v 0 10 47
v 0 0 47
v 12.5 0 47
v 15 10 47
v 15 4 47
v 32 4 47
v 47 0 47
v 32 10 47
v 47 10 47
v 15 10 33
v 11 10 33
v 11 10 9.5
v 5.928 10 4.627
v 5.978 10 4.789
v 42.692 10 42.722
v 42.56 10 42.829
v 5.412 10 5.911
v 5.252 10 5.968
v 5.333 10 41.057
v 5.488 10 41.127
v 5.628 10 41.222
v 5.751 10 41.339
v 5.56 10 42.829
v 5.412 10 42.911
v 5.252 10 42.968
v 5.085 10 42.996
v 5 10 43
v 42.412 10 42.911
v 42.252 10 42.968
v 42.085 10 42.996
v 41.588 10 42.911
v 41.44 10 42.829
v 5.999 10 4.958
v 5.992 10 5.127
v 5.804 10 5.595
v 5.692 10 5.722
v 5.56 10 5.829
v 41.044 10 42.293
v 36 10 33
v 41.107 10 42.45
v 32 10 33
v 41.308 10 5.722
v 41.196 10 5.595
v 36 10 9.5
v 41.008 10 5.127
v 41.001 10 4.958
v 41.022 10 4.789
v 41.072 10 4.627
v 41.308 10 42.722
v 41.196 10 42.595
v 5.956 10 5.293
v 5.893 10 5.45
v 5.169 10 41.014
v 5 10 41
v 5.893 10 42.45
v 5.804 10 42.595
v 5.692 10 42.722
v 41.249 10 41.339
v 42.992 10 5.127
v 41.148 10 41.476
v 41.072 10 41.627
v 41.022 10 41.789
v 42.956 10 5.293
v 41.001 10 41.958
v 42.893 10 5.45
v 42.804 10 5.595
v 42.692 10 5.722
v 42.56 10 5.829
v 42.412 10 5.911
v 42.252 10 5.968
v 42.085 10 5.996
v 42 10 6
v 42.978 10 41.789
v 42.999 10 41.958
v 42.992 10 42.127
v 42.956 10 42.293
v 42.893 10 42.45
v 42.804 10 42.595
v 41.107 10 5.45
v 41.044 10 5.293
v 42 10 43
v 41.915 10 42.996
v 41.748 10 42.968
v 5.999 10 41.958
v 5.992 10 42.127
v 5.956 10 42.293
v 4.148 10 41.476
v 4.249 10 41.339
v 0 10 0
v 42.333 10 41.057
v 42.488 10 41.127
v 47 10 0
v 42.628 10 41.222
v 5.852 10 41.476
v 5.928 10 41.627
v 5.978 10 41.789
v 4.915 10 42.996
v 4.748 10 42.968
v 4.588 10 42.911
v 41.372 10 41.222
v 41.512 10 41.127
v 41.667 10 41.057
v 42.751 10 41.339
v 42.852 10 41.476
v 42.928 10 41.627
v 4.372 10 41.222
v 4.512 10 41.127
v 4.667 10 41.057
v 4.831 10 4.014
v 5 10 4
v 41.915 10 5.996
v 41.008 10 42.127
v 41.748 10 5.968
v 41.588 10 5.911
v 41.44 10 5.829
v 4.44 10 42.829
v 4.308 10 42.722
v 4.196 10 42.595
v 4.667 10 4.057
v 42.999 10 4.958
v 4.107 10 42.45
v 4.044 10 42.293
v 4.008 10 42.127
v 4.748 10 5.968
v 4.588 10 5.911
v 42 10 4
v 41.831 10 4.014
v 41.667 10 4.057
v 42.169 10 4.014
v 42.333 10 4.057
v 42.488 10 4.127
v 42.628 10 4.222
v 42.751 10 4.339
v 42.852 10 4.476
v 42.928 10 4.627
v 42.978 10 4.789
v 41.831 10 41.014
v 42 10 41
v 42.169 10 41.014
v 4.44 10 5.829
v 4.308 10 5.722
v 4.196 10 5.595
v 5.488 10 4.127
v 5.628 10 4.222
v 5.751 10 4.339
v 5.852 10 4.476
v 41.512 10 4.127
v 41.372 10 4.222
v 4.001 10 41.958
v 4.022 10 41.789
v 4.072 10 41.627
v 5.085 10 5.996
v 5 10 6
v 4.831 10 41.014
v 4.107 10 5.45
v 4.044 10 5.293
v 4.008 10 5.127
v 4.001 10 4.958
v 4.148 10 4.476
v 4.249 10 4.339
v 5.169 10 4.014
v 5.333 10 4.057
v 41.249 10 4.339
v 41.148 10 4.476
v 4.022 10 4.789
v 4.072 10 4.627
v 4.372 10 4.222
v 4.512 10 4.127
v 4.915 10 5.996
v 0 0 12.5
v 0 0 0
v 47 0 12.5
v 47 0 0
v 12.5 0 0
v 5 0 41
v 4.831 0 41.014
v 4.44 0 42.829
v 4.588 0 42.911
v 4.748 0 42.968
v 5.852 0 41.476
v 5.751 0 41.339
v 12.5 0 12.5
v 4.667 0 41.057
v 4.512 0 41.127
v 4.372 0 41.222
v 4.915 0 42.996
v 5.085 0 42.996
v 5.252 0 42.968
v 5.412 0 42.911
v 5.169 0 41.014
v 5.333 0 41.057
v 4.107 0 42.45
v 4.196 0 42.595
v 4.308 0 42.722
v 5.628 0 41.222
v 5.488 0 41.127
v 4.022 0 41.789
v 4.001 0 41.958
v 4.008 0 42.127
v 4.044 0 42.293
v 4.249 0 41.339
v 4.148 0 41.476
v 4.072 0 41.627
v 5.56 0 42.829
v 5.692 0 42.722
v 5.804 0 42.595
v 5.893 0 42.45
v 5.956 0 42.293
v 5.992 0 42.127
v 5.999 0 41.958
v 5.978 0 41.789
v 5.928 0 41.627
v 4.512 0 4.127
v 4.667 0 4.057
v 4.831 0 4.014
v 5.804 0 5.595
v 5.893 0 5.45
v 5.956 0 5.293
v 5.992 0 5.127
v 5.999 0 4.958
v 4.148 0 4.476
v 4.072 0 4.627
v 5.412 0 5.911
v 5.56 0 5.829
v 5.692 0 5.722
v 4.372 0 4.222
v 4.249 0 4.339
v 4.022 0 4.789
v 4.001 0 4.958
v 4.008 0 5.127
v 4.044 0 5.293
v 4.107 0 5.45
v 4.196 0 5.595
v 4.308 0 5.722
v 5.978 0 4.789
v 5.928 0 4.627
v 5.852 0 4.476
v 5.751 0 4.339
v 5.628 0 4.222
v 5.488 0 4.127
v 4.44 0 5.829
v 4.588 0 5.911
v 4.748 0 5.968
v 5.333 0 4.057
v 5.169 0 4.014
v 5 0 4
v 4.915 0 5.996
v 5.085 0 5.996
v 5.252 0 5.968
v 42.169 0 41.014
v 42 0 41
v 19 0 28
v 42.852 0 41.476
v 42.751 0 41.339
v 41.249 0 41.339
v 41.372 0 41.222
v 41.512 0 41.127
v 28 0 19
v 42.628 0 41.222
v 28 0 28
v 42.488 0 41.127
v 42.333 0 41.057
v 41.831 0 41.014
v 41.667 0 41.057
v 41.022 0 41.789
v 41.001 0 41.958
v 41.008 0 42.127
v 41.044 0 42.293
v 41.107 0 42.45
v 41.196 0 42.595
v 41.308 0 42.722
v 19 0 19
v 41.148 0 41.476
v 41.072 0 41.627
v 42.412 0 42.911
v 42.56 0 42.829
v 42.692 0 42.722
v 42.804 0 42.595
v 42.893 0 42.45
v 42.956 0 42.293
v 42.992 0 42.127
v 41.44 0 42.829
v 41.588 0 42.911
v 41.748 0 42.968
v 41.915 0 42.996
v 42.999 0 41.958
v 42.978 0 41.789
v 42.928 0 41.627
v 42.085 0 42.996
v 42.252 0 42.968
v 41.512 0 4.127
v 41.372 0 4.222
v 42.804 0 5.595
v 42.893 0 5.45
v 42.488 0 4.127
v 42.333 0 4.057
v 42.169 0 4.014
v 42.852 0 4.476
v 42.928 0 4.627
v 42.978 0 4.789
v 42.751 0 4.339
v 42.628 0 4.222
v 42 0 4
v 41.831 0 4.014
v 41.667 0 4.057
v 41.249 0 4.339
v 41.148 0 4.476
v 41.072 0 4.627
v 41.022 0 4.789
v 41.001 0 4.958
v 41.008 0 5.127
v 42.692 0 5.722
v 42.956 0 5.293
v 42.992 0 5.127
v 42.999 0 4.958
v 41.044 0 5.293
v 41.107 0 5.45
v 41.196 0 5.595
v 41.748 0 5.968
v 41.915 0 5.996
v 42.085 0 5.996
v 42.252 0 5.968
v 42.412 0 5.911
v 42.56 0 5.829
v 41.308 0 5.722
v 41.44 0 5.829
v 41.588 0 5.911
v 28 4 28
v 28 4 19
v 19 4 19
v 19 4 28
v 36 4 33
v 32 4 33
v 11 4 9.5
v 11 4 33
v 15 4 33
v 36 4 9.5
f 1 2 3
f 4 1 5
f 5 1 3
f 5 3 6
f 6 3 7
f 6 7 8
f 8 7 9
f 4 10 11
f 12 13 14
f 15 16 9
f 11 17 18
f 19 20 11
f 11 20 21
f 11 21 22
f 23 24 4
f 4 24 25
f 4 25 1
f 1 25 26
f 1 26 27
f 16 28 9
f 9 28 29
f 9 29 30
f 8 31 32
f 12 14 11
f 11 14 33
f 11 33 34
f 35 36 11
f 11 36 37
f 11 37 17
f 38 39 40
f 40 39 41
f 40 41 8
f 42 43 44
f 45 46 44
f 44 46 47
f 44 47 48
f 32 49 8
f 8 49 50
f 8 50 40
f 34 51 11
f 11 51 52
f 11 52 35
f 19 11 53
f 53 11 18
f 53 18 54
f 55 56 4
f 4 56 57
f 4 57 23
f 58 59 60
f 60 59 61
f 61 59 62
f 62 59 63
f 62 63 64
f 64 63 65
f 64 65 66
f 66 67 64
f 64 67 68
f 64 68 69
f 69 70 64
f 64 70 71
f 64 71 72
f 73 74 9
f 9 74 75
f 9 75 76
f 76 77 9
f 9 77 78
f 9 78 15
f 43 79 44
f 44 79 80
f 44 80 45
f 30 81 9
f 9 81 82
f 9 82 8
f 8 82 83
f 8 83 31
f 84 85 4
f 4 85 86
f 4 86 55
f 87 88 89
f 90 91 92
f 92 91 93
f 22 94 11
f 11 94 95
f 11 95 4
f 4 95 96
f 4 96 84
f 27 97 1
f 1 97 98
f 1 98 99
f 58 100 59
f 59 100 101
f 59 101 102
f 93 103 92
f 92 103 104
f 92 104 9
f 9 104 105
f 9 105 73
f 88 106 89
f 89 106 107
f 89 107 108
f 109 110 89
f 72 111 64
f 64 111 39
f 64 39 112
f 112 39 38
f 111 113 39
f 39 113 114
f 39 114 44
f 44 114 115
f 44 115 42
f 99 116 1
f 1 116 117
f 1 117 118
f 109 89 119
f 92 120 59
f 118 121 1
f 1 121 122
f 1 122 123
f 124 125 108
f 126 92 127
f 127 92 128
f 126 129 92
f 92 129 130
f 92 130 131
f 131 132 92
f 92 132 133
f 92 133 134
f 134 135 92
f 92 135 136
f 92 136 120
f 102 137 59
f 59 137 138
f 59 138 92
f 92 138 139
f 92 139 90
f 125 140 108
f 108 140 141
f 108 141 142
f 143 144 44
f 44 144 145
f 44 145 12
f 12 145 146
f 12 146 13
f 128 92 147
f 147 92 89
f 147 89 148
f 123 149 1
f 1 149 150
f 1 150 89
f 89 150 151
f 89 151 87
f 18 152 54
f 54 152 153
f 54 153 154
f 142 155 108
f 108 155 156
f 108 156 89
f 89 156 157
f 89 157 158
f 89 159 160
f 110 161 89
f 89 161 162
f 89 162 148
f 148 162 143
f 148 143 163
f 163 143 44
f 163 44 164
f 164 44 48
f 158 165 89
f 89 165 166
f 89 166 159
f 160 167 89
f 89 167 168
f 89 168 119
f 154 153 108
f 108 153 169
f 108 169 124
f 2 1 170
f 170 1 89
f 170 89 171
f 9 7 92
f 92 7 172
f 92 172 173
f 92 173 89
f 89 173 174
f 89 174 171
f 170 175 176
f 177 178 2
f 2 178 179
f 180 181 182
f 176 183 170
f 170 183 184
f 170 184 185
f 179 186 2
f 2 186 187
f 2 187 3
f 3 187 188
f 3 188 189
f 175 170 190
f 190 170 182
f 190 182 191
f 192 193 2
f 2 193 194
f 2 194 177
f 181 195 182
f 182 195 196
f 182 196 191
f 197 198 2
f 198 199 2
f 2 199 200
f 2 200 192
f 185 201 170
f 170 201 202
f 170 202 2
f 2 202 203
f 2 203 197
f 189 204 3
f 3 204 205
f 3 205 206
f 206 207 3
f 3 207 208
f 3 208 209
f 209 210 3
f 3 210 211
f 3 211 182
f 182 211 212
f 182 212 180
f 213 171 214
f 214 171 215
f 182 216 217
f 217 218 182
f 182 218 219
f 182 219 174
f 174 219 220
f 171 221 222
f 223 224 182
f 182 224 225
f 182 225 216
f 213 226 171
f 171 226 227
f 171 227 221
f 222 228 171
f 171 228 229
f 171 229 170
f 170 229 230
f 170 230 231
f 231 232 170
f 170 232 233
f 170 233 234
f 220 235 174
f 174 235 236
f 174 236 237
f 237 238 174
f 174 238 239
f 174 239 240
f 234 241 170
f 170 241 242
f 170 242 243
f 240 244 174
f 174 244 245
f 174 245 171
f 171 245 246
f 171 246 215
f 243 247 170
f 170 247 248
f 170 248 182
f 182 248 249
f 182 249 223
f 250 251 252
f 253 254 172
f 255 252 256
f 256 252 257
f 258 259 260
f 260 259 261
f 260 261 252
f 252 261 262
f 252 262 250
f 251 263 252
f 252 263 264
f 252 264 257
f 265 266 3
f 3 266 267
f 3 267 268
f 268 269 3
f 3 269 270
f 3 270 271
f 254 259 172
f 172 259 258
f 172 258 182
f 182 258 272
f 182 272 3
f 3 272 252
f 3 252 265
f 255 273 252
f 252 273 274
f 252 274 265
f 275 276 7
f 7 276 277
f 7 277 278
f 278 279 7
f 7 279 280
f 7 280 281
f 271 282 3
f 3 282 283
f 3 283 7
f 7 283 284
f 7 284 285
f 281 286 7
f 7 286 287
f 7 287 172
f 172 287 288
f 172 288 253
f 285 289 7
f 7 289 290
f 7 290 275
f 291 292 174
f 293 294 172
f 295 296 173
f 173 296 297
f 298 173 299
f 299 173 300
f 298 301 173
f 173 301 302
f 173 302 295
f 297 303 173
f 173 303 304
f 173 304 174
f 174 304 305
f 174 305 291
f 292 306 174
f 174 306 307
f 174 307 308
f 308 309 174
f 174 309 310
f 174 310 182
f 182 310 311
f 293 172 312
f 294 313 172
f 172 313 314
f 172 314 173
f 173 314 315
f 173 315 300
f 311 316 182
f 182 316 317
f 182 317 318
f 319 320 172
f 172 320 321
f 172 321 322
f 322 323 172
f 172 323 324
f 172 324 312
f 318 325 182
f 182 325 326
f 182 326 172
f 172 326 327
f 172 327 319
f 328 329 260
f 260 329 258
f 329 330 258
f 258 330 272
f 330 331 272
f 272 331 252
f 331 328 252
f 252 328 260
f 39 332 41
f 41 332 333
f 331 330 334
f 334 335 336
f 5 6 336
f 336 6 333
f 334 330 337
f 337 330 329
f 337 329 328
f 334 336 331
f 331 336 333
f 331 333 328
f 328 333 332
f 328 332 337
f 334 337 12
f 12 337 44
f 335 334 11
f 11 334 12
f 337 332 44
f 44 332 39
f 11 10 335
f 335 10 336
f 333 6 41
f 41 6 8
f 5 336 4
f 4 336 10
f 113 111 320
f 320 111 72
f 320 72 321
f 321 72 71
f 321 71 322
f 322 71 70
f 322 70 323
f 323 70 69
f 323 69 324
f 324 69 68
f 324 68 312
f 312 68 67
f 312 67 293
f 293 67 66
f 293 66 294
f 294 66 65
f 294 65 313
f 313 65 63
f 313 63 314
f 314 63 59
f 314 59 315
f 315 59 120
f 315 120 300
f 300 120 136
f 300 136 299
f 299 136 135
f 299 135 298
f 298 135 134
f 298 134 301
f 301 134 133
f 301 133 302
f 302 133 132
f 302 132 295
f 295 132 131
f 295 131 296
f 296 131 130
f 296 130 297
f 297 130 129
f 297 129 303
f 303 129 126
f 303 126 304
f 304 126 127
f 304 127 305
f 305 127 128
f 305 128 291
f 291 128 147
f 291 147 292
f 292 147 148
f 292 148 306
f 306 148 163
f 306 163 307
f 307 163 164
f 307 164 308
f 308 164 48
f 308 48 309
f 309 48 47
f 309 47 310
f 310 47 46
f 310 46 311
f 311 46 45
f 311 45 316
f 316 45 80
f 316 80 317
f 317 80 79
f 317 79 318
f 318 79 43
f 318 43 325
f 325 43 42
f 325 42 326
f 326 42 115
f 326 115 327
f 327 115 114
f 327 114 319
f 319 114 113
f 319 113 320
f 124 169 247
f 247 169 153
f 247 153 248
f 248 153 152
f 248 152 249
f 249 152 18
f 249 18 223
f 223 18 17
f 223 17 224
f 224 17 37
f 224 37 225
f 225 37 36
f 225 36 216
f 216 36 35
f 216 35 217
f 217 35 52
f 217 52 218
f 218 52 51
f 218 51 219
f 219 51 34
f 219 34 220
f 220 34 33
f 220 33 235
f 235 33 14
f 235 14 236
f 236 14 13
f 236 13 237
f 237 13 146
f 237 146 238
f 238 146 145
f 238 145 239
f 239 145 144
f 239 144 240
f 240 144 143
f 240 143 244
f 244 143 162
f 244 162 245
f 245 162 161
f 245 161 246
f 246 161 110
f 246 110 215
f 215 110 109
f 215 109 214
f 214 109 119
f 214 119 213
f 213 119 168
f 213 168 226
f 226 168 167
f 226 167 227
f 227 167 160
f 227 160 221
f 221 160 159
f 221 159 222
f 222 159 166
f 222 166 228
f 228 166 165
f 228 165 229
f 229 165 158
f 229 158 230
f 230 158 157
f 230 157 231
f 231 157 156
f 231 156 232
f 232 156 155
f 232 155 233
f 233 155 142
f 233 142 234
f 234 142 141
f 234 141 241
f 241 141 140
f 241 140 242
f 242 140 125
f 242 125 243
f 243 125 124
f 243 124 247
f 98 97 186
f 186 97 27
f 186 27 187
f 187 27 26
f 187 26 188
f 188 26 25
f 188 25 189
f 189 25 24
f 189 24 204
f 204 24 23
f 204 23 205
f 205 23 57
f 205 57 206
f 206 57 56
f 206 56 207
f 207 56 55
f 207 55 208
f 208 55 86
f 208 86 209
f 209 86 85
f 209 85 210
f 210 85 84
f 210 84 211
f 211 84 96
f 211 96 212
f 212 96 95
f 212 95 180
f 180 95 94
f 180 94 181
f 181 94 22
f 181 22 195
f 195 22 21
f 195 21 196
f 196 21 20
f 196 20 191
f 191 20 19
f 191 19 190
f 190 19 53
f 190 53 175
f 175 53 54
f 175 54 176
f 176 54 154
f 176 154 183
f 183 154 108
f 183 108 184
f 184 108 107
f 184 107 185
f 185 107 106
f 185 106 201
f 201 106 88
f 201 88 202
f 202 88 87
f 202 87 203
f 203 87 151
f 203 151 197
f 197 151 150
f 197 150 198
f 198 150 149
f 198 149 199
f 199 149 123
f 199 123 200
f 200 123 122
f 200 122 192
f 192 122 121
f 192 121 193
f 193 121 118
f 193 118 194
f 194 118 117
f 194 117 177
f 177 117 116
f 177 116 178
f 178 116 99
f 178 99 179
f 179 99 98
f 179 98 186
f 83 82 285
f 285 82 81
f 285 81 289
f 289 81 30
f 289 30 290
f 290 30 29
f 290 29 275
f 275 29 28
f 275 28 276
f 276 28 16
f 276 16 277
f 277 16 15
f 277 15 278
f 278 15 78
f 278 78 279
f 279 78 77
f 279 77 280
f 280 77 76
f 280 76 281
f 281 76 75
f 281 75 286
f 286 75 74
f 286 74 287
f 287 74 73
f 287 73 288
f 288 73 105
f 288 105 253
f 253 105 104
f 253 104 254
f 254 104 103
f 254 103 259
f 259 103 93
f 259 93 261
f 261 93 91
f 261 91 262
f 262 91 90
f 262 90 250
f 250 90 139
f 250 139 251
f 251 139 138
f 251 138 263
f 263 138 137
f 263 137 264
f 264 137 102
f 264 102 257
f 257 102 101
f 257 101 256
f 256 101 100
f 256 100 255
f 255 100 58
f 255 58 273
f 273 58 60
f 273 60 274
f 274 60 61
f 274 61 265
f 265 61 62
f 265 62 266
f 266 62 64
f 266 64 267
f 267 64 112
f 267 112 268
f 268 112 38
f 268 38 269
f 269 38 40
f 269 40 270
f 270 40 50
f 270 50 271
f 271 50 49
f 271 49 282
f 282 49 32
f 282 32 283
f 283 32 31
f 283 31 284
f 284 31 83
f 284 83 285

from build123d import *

# Parameters (mm, degrees)
SKETCH1_W           = 47
SKETCH1_H           = 47
BOSS_EXTRUDE1_DEPTH = 10
SKETCH2_W           = 9
SKETCH2_H           = 9
CUT_EXTRUDE1_DEPTH  = 4
CUT_EXTRUDE3_DEPTH  = 53.328290628
SKETCH8_R           = 1
CUT_EXTRUDE4_DEPTH  = 68.216069507


with BuildPart() as part:
    # Sketch1 → Boss-Extrude1 (new body)
    with BuildSketch(Plane(origin=(0, 0, 0), x_dir=(1, 0, 0), z_dir=(0, 1, 0))):
        with Locations((23.5, -23.5)):
            Rectangle(SKETCH1_W, SKETCH1_H)
    extrude(amount=BOSS_EXTRUDE1_DEPTH)

    # Sketch2 → Cut-Extrude1 (cut)
    with BuildSketch(Plane(origin=(0, 0, 0), x_dir=(-1, 0, 0), z_dir=(0, -1, 0))):
        with Locations((-23.5, -23.5)):
            Rectangle(SKETCH2_W, SKETCH2_H)
    extrude(amount=-CUT_EXTRUDE1_DEPTH, mode=Mode.SUBTRACT)

    # 3DSketch1 → Cut-Extrude3 (cut, through all)
    with BuildSketch(Plane(origin=(36, 4, 9.5), x_dir=(-0.4886033689318435, 0, 0.87250601594972), z_dir=(0, -1, 0))):
        Polygon((0, 0), (12.215084223, 21.812650399), (32.718975598, 10.330471229), (20.503891375, -11.48217917), align=None)
        Polygon((22.458304851, -7.992155106), (30.764562122, 6.840447165), (42.979646346, 0), (34.673389074, -14.832602271), align=None)
    extrude(amount=-CUT_EXTRUDE3_DEPTH, mode=Mode.SUBTRACT)

    # Sketch8 → Cut-Extrude4 (cut, through all)
    with BuildSketch(Plane.XZ):
        with Locations(Location((42, 5, 0), (0, 0, 270))):
            Circle(SKETCH8_R)
        with Locations(Location((5, 5, 0), (0, 0, 270))):
            Circle(SKETCH8_R)
        with Locations(Location((5, 42, 0), (0, 0, 270))):
            Circle(SKETCH8_R)
        with Locations(Location((42, 42, 0), (0, 0, 270))):
            Circle(SKETCH8_R)
    extrude(amount=-CUT_EXTRUDE4_DEPTH, mode=Mode.SUBTRACT)


solid = part.part
